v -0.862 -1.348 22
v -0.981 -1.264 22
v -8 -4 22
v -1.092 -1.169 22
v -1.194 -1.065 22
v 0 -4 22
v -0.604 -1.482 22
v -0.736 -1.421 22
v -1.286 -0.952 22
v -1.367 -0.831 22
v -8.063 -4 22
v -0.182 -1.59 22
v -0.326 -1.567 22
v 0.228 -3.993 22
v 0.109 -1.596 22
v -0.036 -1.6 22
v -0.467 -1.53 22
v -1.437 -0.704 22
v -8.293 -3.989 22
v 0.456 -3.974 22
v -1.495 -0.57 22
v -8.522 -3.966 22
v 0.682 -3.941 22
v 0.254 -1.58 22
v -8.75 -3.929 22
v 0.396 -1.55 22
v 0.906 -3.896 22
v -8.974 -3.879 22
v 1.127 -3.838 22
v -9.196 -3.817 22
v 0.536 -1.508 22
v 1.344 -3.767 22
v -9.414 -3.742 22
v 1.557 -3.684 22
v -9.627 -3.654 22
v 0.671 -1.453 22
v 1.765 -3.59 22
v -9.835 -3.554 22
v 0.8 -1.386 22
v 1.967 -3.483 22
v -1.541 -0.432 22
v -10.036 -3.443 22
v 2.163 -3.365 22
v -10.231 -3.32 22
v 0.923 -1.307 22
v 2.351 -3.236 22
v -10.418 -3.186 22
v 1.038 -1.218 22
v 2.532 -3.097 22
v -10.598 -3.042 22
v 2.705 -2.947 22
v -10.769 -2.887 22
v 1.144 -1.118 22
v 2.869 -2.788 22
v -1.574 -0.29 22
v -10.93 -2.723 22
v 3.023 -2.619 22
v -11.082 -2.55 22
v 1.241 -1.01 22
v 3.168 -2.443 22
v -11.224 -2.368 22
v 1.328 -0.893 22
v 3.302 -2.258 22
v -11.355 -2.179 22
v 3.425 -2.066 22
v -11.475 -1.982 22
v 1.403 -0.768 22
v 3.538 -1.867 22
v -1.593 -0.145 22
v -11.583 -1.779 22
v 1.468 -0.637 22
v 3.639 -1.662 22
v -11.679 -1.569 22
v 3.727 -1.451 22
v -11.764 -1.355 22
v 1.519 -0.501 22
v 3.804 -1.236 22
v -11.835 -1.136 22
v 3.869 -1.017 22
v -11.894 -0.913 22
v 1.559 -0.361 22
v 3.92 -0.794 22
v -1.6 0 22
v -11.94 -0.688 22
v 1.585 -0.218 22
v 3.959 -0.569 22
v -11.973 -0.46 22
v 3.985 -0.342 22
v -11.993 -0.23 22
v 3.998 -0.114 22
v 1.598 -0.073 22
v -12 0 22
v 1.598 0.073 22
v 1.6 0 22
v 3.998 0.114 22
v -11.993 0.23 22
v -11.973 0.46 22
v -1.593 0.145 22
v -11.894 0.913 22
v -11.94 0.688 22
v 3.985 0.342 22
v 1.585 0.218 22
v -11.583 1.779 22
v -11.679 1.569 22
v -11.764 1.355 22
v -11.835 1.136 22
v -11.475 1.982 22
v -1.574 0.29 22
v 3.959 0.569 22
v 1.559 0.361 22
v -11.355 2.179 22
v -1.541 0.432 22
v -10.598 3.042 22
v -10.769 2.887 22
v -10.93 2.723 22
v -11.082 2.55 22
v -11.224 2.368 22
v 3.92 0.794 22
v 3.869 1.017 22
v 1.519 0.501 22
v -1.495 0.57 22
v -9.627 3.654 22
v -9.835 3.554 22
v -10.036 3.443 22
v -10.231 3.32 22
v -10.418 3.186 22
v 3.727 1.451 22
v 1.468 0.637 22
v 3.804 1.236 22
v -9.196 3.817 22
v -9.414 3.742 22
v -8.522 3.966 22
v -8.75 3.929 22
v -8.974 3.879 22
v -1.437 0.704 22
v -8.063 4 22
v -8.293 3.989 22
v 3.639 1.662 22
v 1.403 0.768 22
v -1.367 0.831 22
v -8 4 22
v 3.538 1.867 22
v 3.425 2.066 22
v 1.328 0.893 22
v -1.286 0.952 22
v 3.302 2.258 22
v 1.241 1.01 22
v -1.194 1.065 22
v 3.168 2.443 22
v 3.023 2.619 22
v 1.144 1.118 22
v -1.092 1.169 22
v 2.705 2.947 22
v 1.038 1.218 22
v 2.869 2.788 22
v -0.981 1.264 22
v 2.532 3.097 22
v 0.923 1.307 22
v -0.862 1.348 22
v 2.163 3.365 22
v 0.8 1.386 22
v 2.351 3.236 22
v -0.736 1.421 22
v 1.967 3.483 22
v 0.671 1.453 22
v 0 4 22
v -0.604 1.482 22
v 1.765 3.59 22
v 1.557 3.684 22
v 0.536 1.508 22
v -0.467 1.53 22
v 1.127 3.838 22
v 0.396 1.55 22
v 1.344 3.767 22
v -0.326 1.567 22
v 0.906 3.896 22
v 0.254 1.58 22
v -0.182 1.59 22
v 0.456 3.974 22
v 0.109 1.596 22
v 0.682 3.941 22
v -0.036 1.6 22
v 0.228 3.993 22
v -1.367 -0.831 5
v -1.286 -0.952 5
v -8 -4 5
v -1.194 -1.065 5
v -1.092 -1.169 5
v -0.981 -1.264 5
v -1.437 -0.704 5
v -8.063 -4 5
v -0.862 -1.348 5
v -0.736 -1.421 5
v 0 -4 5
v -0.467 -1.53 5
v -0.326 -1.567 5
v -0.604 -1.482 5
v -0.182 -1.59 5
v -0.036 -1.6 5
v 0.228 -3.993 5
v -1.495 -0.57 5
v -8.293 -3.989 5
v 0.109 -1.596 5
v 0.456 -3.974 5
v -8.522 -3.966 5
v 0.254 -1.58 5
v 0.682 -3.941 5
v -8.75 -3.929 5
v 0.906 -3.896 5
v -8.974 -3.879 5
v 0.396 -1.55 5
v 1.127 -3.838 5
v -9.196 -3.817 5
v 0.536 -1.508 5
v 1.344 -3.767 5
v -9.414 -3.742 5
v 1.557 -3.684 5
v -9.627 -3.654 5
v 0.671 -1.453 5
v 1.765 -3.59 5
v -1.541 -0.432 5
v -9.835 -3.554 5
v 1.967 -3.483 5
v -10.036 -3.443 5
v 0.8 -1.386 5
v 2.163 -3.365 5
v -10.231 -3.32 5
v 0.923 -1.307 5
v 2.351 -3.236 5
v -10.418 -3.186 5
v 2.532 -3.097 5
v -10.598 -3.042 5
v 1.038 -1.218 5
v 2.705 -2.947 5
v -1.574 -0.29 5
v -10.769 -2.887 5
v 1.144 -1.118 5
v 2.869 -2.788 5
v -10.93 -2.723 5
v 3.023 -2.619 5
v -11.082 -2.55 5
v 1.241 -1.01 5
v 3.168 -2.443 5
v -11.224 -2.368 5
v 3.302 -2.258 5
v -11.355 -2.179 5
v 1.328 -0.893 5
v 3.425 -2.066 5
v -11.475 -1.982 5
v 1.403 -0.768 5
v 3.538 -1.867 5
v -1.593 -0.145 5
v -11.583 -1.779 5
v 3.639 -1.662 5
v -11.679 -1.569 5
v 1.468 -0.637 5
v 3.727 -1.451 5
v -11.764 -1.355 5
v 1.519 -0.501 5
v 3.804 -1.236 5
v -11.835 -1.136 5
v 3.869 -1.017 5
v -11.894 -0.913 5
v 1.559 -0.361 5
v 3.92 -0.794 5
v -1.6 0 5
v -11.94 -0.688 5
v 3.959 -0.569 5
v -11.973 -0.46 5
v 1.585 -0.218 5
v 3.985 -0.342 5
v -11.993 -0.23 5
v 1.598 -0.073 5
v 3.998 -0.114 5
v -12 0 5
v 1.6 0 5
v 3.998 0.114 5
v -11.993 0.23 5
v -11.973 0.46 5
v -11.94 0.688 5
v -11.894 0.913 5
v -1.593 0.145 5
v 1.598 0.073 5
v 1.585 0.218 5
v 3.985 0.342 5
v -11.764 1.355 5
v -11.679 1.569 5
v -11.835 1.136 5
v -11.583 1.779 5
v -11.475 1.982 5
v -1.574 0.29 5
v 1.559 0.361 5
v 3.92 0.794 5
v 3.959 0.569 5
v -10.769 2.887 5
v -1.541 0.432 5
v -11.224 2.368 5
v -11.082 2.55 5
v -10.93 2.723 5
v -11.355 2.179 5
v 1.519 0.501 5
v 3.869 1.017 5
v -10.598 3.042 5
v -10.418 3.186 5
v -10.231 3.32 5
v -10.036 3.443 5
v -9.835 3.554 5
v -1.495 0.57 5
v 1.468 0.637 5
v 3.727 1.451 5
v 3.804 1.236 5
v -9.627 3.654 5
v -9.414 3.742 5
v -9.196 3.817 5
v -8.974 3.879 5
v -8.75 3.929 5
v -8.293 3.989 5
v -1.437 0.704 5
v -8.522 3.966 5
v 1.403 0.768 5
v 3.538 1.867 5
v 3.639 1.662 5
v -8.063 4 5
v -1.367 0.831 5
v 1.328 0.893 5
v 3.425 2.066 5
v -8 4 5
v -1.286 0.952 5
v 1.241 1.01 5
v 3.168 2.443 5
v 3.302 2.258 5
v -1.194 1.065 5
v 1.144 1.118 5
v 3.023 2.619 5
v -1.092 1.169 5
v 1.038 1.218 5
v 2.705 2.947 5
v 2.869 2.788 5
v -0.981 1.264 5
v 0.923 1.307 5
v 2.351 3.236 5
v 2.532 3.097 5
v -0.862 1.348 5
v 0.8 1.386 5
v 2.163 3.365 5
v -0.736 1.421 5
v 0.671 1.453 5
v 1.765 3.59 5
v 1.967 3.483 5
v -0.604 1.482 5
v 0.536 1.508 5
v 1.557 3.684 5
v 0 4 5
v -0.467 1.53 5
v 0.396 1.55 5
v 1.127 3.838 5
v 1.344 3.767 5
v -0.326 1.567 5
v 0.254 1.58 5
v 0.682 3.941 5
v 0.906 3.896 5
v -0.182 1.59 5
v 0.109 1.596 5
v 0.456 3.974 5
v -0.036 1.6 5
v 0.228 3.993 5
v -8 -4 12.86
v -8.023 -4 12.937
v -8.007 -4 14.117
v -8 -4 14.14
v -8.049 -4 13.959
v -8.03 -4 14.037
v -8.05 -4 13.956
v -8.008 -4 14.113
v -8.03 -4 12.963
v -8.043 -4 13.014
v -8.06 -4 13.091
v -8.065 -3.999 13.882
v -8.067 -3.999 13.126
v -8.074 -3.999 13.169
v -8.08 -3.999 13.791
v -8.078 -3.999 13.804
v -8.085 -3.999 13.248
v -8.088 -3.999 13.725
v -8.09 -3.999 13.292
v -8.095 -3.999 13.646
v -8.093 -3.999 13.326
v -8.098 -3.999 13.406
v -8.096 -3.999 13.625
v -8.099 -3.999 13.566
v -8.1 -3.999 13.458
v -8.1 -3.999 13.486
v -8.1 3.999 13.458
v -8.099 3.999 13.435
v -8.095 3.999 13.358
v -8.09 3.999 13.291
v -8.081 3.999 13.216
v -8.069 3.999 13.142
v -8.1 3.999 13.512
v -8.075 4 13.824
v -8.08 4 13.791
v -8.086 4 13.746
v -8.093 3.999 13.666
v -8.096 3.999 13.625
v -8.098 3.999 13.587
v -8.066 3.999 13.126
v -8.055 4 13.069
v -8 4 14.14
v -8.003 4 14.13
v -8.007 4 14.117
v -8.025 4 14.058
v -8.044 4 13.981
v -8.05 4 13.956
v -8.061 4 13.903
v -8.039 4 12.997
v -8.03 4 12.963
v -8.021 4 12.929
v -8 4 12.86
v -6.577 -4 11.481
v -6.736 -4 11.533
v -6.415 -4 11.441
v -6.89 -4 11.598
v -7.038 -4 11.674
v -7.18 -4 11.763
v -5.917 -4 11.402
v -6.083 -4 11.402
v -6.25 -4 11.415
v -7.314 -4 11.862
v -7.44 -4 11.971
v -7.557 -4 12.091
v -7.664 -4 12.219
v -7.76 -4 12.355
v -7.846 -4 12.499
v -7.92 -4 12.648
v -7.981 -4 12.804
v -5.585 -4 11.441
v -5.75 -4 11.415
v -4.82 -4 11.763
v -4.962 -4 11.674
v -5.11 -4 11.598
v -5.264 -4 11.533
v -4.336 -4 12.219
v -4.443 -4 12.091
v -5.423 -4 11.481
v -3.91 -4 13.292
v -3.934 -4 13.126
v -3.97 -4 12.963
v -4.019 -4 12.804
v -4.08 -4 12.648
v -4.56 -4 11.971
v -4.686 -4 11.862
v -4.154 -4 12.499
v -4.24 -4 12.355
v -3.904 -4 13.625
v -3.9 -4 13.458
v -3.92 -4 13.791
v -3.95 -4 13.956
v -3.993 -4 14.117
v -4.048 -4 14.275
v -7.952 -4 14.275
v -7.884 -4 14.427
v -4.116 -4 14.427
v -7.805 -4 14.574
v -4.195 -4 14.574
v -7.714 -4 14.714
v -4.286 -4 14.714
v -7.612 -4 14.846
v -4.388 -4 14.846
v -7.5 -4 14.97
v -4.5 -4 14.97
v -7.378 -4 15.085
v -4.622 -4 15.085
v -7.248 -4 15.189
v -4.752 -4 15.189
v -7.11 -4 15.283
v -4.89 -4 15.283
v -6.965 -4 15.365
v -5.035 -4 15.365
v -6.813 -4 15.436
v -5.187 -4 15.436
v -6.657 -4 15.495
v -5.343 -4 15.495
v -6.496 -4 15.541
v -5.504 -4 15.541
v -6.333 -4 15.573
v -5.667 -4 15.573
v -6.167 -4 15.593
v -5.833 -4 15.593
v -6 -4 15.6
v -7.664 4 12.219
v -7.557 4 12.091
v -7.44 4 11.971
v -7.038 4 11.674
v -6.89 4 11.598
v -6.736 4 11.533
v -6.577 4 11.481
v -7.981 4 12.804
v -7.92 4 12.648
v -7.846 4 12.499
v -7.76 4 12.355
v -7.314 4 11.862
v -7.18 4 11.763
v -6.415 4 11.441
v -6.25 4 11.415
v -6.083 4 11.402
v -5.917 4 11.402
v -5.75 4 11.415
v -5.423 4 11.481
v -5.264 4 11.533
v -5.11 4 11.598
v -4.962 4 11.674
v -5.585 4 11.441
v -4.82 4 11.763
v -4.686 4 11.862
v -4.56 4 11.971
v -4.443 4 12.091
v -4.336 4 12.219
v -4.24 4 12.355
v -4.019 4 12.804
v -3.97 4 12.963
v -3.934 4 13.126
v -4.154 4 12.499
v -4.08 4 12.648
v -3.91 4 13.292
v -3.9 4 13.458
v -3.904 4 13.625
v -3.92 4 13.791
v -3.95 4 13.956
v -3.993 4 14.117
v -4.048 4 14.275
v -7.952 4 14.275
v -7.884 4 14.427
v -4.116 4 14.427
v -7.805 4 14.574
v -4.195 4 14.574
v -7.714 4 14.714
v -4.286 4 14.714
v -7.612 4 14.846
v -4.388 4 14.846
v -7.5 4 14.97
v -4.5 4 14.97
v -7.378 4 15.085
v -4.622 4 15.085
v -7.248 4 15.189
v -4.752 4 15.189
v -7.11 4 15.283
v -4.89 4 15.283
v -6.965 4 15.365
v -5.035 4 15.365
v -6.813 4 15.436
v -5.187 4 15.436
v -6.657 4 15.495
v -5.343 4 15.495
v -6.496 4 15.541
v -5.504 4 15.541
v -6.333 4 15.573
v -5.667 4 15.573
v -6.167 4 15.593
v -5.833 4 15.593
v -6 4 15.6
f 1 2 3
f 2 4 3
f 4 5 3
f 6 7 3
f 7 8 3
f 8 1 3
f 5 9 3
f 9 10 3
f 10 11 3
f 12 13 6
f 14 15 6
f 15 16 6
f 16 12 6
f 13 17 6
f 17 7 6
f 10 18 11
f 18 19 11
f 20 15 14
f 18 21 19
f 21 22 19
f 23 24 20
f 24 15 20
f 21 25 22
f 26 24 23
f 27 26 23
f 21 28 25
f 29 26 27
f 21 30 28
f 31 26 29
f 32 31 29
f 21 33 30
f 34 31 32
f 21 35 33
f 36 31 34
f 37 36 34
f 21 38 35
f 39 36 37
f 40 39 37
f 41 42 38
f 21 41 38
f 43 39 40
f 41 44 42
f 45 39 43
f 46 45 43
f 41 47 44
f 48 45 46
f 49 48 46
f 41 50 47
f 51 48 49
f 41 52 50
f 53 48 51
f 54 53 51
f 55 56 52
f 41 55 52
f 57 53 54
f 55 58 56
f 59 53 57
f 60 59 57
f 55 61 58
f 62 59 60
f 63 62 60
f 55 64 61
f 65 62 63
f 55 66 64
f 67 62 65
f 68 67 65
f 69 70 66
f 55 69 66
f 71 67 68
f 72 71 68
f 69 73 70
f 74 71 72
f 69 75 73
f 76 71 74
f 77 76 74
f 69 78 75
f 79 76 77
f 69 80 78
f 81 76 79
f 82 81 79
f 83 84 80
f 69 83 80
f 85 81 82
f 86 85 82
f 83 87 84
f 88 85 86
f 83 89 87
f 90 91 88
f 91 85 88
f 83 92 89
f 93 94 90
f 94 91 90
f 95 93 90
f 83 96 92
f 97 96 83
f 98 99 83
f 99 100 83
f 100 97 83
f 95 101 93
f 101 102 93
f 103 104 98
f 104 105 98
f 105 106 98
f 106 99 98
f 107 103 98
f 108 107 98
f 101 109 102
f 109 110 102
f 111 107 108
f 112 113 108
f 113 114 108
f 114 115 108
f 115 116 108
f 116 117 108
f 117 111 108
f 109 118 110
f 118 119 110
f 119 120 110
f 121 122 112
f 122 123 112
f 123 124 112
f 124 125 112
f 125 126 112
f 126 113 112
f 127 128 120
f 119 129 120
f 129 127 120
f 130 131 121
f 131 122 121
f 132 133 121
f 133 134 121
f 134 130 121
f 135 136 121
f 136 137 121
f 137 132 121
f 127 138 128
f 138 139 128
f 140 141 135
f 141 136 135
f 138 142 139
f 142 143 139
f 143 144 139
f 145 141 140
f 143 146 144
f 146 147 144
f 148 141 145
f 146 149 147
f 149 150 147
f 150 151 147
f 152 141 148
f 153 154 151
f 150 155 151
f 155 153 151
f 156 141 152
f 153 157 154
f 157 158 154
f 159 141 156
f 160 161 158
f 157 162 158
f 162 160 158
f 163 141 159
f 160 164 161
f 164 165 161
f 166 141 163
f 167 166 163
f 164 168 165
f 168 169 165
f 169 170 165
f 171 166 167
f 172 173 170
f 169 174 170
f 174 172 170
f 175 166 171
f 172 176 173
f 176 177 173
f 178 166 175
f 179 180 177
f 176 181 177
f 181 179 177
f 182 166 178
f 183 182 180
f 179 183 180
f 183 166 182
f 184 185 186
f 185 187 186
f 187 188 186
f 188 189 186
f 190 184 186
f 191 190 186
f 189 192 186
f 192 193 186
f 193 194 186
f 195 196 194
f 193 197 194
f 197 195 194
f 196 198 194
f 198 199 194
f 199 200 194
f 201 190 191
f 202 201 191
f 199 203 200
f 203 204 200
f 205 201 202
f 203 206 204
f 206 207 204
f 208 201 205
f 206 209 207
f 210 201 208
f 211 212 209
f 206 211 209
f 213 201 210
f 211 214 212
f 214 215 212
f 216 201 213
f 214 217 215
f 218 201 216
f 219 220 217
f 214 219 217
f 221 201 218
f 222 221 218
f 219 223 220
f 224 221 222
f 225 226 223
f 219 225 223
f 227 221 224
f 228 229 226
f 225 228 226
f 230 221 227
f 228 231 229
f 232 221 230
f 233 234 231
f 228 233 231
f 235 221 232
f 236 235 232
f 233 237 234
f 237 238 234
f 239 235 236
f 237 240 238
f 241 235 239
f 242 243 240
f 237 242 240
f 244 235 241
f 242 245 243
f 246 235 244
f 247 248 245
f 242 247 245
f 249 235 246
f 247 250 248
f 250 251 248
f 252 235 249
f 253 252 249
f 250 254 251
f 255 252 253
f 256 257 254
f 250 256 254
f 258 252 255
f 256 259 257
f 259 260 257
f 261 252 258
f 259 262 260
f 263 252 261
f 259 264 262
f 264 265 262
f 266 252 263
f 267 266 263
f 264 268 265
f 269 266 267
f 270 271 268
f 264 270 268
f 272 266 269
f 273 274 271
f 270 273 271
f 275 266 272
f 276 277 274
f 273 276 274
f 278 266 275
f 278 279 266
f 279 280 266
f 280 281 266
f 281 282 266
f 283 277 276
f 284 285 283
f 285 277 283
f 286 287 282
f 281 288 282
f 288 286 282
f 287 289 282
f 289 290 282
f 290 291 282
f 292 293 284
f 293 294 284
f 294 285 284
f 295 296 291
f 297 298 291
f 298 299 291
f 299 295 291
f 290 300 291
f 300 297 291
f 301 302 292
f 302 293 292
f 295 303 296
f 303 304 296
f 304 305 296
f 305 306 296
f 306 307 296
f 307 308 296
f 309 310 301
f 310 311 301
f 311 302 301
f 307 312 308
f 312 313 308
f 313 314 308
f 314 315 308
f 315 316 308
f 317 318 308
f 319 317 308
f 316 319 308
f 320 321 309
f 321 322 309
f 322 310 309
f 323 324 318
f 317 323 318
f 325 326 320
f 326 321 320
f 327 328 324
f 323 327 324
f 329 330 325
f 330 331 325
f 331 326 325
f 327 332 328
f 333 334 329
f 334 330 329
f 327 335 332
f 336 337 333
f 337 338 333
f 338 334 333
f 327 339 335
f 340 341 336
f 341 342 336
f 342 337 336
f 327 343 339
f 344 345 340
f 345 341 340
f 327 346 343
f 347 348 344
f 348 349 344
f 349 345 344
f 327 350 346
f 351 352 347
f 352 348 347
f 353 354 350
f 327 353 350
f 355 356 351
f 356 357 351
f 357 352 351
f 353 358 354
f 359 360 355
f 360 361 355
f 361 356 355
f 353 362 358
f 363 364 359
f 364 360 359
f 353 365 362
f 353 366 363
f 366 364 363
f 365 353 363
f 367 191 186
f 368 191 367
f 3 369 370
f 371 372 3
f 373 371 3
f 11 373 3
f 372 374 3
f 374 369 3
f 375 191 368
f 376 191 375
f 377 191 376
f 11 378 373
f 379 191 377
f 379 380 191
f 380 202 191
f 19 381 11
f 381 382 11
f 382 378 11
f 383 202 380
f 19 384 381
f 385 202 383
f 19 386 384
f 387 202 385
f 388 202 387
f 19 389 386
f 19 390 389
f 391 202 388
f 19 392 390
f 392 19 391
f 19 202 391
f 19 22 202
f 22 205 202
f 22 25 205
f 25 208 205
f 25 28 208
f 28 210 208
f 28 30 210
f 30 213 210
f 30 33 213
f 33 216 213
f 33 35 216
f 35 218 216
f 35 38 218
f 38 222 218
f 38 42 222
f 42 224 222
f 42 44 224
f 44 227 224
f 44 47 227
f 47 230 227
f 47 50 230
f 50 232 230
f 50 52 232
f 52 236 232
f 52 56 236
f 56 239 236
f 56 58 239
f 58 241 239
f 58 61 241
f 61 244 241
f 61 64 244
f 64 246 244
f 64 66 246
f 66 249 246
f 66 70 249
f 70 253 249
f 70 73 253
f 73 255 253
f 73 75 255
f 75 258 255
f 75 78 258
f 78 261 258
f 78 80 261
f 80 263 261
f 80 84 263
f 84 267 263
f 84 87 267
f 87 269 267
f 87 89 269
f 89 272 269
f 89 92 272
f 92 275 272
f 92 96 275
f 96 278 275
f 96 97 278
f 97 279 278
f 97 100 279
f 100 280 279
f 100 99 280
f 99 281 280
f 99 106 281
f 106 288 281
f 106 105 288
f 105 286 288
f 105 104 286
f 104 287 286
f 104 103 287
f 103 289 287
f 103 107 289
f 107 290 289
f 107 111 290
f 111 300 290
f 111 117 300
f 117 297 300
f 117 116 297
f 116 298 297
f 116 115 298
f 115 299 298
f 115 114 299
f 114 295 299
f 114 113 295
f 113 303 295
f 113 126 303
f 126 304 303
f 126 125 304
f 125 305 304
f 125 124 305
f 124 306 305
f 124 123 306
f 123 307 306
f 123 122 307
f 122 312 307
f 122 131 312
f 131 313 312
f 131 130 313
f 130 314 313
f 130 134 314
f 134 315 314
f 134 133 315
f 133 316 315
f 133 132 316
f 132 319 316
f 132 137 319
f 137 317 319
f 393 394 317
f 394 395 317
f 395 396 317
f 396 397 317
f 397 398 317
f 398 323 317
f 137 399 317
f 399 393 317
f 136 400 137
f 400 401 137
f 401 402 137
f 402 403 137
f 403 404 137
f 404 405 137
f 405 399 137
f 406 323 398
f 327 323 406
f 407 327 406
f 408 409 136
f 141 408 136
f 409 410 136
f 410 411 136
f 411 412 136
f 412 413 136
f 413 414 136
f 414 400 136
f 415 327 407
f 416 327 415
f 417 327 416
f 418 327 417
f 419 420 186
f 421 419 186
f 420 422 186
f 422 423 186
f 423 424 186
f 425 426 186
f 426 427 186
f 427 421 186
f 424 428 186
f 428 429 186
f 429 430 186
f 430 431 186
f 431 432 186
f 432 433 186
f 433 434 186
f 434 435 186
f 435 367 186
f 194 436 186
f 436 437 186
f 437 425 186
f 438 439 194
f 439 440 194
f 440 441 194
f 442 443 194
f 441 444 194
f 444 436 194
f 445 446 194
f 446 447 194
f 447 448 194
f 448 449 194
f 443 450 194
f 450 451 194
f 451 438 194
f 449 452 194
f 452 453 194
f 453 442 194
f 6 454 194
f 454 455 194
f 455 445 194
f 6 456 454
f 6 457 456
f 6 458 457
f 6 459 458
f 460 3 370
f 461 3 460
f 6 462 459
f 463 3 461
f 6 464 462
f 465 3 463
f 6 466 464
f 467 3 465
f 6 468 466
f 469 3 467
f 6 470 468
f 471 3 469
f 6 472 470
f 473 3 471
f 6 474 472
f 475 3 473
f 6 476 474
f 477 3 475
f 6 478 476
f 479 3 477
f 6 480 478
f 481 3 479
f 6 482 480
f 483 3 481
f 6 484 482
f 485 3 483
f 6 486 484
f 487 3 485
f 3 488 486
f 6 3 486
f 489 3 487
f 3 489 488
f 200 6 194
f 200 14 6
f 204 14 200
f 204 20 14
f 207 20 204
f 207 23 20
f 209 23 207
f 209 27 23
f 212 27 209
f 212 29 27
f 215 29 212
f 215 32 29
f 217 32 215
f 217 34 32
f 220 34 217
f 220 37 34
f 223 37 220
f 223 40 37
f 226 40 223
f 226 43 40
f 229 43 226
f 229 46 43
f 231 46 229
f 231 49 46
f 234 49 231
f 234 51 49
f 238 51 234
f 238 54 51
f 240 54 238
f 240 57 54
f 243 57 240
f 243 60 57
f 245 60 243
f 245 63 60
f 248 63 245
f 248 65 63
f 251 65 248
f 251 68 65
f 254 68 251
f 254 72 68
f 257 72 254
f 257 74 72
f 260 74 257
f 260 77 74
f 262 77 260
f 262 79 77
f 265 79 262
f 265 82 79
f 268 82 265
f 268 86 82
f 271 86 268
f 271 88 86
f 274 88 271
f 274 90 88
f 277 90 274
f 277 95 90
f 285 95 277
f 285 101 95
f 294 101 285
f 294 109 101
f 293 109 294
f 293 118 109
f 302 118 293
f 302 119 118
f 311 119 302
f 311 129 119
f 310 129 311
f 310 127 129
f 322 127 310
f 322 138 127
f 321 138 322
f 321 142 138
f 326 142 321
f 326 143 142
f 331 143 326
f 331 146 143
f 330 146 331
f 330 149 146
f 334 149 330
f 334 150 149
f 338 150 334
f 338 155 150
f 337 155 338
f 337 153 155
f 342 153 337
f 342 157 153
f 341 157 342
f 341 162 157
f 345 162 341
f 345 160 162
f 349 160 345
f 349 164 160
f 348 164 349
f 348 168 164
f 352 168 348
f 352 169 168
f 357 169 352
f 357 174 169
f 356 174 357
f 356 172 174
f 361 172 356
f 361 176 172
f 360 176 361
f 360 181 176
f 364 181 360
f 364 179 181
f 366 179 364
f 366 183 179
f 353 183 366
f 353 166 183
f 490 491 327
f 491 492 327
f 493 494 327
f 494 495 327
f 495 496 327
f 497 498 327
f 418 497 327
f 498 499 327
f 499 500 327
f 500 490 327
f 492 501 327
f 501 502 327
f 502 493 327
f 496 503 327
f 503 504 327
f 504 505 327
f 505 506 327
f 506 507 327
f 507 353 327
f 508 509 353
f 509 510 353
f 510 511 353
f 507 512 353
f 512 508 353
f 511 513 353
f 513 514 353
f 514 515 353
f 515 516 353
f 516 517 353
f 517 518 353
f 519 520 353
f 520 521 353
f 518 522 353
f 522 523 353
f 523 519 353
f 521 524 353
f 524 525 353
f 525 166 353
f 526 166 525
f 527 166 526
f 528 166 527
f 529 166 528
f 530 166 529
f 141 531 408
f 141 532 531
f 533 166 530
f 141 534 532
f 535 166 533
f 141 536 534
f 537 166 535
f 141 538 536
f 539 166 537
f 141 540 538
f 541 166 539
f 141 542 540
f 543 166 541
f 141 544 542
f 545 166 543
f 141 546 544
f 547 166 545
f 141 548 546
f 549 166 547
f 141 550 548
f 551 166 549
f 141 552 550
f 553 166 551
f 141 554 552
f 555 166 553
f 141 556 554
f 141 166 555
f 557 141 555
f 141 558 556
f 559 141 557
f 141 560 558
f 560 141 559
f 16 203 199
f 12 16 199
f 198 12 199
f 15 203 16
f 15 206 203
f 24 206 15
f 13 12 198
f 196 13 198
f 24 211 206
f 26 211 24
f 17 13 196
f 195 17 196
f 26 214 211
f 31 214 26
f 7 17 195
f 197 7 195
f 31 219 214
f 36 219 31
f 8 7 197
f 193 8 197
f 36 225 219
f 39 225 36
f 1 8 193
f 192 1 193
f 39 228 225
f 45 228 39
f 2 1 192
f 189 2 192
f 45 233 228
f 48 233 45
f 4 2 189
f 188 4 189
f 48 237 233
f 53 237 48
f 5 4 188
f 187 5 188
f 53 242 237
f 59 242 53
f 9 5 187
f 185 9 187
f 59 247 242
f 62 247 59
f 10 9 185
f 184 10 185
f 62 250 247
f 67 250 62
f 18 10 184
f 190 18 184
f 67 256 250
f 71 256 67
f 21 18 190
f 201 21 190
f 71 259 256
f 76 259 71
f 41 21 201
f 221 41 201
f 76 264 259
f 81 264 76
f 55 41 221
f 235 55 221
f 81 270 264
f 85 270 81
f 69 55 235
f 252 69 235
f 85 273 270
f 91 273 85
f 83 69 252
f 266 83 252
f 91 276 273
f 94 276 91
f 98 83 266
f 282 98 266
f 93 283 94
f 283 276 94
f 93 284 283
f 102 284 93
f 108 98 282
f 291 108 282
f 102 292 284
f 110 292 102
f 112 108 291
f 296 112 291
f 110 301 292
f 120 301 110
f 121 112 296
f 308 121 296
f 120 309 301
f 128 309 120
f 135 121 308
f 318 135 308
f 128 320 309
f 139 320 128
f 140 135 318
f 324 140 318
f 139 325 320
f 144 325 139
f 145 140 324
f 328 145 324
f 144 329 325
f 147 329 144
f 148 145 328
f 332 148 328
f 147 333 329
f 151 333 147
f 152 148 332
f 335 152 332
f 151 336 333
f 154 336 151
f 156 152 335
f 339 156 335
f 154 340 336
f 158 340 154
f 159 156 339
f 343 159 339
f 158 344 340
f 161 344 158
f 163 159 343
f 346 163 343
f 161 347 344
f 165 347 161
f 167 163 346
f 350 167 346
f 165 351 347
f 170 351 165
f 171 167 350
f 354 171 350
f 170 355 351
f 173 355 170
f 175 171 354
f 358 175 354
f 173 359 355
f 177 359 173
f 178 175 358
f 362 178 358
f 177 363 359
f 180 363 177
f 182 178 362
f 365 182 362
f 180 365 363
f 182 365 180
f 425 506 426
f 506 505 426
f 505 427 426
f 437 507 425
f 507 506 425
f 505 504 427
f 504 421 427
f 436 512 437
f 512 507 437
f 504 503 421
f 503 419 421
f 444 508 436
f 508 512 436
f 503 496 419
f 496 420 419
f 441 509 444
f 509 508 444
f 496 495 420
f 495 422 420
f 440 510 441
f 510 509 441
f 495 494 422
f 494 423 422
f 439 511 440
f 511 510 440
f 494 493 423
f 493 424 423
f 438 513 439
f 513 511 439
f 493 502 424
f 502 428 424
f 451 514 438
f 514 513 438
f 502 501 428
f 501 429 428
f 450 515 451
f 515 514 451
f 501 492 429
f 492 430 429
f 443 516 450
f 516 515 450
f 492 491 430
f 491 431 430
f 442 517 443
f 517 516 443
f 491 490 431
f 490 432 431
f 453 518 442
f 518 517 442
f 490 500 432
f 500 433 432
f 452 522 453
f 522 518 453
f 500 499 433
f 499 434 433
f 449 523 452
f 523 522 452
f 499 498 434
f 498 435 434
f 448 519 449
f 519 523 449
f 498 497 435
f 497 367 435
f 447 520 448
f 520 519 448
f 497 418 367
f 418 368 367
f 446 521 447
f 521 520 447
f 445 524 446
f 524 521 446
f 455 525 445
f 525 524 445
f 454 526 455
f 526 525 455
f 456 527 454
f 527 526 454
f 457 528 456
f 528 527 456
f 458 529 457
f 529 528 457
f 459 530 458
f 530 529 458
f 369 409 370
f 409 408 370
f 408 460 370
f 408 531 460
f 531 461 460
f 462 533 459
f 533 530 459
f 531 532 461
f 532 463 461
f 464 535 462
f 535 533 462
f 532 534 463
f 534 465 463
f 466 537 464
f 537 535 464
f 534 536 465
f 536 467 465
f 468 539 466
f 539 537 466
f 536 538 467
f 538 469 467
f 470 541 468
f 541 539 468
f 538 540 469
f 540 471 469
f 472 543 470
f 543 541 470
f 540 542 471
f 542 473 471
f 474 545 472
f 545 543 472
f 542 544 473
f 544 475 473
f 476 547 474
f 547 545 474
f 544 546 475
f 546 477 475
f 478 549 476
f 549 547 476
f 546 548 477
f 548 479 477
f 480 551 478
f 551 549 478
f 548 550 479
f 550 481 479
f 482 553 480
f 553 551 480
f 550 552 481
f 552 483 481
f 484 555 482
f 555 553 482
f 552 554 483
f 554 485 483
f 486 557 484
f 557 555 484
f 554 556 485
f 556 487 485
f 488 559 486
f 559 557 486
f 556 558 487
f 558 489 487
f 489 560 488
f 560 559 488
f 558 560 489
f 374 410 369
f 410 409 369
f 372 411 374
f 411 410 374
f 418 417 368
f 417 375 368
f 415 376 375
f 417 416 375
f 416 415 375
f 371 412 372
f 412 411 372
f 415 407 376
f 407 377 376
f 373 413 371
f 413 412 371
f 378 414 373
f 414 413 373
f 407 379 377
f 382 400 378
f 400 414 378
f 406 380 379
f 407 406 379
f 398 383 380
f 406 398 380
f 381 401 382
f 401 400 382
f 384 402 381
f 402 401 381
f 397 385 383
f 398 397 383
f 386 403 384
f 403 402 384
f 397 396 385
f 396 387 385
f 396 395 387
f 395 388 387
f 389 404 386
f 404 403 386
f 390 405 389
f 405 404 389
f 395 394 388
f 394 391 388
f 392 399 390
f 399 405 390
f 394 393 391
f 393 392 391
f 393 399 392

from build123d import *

# Parameters (mm, degrees)
SKETCH1_R           = 1.6
BOSS_EXTRUDE1_DEPTH = 17
SKETCH2_R           = 2.1
CUT_EXTRUDE1_DEPTH  = 27.305892876


with BuildPart() as part:
    # Sketch1 → Boss-Extrude1 (new body)
    with BuildSketch(Plane.XY.offset(5)):
        with BuildLine():
            Line((-8, -4), (0, -4))
            ThreePointArc((0, -4), (4, 0), (0, 4))
            Line((0, 4), (-8, 4))
            ThreePointArc((-8, 4), (-12, 0), (-8, -4))
        make_face()
        Circle(SKETCH1_R, mode=Mode.SUBTRACT)
    extrude(amount=BOSS_EXTRUDE1_DEPTH)

    # Sketch2 → Cut-Extrude1 (cut, through all)
    with BuildSketch(Plane(origin=(0, 4, 0), x_dir=(1, 0, 0), z_dir=(0, 1, 0))):
        with Locations(Location((-6, -13.5, 0), (0, 0, 197.752790162))):
            Circle(SKETCH2_R)
    extrude(amount=-CUT_EXTRUDE1_DEPTH, mode=Mode.SUBTRACT)


solid = part.part
